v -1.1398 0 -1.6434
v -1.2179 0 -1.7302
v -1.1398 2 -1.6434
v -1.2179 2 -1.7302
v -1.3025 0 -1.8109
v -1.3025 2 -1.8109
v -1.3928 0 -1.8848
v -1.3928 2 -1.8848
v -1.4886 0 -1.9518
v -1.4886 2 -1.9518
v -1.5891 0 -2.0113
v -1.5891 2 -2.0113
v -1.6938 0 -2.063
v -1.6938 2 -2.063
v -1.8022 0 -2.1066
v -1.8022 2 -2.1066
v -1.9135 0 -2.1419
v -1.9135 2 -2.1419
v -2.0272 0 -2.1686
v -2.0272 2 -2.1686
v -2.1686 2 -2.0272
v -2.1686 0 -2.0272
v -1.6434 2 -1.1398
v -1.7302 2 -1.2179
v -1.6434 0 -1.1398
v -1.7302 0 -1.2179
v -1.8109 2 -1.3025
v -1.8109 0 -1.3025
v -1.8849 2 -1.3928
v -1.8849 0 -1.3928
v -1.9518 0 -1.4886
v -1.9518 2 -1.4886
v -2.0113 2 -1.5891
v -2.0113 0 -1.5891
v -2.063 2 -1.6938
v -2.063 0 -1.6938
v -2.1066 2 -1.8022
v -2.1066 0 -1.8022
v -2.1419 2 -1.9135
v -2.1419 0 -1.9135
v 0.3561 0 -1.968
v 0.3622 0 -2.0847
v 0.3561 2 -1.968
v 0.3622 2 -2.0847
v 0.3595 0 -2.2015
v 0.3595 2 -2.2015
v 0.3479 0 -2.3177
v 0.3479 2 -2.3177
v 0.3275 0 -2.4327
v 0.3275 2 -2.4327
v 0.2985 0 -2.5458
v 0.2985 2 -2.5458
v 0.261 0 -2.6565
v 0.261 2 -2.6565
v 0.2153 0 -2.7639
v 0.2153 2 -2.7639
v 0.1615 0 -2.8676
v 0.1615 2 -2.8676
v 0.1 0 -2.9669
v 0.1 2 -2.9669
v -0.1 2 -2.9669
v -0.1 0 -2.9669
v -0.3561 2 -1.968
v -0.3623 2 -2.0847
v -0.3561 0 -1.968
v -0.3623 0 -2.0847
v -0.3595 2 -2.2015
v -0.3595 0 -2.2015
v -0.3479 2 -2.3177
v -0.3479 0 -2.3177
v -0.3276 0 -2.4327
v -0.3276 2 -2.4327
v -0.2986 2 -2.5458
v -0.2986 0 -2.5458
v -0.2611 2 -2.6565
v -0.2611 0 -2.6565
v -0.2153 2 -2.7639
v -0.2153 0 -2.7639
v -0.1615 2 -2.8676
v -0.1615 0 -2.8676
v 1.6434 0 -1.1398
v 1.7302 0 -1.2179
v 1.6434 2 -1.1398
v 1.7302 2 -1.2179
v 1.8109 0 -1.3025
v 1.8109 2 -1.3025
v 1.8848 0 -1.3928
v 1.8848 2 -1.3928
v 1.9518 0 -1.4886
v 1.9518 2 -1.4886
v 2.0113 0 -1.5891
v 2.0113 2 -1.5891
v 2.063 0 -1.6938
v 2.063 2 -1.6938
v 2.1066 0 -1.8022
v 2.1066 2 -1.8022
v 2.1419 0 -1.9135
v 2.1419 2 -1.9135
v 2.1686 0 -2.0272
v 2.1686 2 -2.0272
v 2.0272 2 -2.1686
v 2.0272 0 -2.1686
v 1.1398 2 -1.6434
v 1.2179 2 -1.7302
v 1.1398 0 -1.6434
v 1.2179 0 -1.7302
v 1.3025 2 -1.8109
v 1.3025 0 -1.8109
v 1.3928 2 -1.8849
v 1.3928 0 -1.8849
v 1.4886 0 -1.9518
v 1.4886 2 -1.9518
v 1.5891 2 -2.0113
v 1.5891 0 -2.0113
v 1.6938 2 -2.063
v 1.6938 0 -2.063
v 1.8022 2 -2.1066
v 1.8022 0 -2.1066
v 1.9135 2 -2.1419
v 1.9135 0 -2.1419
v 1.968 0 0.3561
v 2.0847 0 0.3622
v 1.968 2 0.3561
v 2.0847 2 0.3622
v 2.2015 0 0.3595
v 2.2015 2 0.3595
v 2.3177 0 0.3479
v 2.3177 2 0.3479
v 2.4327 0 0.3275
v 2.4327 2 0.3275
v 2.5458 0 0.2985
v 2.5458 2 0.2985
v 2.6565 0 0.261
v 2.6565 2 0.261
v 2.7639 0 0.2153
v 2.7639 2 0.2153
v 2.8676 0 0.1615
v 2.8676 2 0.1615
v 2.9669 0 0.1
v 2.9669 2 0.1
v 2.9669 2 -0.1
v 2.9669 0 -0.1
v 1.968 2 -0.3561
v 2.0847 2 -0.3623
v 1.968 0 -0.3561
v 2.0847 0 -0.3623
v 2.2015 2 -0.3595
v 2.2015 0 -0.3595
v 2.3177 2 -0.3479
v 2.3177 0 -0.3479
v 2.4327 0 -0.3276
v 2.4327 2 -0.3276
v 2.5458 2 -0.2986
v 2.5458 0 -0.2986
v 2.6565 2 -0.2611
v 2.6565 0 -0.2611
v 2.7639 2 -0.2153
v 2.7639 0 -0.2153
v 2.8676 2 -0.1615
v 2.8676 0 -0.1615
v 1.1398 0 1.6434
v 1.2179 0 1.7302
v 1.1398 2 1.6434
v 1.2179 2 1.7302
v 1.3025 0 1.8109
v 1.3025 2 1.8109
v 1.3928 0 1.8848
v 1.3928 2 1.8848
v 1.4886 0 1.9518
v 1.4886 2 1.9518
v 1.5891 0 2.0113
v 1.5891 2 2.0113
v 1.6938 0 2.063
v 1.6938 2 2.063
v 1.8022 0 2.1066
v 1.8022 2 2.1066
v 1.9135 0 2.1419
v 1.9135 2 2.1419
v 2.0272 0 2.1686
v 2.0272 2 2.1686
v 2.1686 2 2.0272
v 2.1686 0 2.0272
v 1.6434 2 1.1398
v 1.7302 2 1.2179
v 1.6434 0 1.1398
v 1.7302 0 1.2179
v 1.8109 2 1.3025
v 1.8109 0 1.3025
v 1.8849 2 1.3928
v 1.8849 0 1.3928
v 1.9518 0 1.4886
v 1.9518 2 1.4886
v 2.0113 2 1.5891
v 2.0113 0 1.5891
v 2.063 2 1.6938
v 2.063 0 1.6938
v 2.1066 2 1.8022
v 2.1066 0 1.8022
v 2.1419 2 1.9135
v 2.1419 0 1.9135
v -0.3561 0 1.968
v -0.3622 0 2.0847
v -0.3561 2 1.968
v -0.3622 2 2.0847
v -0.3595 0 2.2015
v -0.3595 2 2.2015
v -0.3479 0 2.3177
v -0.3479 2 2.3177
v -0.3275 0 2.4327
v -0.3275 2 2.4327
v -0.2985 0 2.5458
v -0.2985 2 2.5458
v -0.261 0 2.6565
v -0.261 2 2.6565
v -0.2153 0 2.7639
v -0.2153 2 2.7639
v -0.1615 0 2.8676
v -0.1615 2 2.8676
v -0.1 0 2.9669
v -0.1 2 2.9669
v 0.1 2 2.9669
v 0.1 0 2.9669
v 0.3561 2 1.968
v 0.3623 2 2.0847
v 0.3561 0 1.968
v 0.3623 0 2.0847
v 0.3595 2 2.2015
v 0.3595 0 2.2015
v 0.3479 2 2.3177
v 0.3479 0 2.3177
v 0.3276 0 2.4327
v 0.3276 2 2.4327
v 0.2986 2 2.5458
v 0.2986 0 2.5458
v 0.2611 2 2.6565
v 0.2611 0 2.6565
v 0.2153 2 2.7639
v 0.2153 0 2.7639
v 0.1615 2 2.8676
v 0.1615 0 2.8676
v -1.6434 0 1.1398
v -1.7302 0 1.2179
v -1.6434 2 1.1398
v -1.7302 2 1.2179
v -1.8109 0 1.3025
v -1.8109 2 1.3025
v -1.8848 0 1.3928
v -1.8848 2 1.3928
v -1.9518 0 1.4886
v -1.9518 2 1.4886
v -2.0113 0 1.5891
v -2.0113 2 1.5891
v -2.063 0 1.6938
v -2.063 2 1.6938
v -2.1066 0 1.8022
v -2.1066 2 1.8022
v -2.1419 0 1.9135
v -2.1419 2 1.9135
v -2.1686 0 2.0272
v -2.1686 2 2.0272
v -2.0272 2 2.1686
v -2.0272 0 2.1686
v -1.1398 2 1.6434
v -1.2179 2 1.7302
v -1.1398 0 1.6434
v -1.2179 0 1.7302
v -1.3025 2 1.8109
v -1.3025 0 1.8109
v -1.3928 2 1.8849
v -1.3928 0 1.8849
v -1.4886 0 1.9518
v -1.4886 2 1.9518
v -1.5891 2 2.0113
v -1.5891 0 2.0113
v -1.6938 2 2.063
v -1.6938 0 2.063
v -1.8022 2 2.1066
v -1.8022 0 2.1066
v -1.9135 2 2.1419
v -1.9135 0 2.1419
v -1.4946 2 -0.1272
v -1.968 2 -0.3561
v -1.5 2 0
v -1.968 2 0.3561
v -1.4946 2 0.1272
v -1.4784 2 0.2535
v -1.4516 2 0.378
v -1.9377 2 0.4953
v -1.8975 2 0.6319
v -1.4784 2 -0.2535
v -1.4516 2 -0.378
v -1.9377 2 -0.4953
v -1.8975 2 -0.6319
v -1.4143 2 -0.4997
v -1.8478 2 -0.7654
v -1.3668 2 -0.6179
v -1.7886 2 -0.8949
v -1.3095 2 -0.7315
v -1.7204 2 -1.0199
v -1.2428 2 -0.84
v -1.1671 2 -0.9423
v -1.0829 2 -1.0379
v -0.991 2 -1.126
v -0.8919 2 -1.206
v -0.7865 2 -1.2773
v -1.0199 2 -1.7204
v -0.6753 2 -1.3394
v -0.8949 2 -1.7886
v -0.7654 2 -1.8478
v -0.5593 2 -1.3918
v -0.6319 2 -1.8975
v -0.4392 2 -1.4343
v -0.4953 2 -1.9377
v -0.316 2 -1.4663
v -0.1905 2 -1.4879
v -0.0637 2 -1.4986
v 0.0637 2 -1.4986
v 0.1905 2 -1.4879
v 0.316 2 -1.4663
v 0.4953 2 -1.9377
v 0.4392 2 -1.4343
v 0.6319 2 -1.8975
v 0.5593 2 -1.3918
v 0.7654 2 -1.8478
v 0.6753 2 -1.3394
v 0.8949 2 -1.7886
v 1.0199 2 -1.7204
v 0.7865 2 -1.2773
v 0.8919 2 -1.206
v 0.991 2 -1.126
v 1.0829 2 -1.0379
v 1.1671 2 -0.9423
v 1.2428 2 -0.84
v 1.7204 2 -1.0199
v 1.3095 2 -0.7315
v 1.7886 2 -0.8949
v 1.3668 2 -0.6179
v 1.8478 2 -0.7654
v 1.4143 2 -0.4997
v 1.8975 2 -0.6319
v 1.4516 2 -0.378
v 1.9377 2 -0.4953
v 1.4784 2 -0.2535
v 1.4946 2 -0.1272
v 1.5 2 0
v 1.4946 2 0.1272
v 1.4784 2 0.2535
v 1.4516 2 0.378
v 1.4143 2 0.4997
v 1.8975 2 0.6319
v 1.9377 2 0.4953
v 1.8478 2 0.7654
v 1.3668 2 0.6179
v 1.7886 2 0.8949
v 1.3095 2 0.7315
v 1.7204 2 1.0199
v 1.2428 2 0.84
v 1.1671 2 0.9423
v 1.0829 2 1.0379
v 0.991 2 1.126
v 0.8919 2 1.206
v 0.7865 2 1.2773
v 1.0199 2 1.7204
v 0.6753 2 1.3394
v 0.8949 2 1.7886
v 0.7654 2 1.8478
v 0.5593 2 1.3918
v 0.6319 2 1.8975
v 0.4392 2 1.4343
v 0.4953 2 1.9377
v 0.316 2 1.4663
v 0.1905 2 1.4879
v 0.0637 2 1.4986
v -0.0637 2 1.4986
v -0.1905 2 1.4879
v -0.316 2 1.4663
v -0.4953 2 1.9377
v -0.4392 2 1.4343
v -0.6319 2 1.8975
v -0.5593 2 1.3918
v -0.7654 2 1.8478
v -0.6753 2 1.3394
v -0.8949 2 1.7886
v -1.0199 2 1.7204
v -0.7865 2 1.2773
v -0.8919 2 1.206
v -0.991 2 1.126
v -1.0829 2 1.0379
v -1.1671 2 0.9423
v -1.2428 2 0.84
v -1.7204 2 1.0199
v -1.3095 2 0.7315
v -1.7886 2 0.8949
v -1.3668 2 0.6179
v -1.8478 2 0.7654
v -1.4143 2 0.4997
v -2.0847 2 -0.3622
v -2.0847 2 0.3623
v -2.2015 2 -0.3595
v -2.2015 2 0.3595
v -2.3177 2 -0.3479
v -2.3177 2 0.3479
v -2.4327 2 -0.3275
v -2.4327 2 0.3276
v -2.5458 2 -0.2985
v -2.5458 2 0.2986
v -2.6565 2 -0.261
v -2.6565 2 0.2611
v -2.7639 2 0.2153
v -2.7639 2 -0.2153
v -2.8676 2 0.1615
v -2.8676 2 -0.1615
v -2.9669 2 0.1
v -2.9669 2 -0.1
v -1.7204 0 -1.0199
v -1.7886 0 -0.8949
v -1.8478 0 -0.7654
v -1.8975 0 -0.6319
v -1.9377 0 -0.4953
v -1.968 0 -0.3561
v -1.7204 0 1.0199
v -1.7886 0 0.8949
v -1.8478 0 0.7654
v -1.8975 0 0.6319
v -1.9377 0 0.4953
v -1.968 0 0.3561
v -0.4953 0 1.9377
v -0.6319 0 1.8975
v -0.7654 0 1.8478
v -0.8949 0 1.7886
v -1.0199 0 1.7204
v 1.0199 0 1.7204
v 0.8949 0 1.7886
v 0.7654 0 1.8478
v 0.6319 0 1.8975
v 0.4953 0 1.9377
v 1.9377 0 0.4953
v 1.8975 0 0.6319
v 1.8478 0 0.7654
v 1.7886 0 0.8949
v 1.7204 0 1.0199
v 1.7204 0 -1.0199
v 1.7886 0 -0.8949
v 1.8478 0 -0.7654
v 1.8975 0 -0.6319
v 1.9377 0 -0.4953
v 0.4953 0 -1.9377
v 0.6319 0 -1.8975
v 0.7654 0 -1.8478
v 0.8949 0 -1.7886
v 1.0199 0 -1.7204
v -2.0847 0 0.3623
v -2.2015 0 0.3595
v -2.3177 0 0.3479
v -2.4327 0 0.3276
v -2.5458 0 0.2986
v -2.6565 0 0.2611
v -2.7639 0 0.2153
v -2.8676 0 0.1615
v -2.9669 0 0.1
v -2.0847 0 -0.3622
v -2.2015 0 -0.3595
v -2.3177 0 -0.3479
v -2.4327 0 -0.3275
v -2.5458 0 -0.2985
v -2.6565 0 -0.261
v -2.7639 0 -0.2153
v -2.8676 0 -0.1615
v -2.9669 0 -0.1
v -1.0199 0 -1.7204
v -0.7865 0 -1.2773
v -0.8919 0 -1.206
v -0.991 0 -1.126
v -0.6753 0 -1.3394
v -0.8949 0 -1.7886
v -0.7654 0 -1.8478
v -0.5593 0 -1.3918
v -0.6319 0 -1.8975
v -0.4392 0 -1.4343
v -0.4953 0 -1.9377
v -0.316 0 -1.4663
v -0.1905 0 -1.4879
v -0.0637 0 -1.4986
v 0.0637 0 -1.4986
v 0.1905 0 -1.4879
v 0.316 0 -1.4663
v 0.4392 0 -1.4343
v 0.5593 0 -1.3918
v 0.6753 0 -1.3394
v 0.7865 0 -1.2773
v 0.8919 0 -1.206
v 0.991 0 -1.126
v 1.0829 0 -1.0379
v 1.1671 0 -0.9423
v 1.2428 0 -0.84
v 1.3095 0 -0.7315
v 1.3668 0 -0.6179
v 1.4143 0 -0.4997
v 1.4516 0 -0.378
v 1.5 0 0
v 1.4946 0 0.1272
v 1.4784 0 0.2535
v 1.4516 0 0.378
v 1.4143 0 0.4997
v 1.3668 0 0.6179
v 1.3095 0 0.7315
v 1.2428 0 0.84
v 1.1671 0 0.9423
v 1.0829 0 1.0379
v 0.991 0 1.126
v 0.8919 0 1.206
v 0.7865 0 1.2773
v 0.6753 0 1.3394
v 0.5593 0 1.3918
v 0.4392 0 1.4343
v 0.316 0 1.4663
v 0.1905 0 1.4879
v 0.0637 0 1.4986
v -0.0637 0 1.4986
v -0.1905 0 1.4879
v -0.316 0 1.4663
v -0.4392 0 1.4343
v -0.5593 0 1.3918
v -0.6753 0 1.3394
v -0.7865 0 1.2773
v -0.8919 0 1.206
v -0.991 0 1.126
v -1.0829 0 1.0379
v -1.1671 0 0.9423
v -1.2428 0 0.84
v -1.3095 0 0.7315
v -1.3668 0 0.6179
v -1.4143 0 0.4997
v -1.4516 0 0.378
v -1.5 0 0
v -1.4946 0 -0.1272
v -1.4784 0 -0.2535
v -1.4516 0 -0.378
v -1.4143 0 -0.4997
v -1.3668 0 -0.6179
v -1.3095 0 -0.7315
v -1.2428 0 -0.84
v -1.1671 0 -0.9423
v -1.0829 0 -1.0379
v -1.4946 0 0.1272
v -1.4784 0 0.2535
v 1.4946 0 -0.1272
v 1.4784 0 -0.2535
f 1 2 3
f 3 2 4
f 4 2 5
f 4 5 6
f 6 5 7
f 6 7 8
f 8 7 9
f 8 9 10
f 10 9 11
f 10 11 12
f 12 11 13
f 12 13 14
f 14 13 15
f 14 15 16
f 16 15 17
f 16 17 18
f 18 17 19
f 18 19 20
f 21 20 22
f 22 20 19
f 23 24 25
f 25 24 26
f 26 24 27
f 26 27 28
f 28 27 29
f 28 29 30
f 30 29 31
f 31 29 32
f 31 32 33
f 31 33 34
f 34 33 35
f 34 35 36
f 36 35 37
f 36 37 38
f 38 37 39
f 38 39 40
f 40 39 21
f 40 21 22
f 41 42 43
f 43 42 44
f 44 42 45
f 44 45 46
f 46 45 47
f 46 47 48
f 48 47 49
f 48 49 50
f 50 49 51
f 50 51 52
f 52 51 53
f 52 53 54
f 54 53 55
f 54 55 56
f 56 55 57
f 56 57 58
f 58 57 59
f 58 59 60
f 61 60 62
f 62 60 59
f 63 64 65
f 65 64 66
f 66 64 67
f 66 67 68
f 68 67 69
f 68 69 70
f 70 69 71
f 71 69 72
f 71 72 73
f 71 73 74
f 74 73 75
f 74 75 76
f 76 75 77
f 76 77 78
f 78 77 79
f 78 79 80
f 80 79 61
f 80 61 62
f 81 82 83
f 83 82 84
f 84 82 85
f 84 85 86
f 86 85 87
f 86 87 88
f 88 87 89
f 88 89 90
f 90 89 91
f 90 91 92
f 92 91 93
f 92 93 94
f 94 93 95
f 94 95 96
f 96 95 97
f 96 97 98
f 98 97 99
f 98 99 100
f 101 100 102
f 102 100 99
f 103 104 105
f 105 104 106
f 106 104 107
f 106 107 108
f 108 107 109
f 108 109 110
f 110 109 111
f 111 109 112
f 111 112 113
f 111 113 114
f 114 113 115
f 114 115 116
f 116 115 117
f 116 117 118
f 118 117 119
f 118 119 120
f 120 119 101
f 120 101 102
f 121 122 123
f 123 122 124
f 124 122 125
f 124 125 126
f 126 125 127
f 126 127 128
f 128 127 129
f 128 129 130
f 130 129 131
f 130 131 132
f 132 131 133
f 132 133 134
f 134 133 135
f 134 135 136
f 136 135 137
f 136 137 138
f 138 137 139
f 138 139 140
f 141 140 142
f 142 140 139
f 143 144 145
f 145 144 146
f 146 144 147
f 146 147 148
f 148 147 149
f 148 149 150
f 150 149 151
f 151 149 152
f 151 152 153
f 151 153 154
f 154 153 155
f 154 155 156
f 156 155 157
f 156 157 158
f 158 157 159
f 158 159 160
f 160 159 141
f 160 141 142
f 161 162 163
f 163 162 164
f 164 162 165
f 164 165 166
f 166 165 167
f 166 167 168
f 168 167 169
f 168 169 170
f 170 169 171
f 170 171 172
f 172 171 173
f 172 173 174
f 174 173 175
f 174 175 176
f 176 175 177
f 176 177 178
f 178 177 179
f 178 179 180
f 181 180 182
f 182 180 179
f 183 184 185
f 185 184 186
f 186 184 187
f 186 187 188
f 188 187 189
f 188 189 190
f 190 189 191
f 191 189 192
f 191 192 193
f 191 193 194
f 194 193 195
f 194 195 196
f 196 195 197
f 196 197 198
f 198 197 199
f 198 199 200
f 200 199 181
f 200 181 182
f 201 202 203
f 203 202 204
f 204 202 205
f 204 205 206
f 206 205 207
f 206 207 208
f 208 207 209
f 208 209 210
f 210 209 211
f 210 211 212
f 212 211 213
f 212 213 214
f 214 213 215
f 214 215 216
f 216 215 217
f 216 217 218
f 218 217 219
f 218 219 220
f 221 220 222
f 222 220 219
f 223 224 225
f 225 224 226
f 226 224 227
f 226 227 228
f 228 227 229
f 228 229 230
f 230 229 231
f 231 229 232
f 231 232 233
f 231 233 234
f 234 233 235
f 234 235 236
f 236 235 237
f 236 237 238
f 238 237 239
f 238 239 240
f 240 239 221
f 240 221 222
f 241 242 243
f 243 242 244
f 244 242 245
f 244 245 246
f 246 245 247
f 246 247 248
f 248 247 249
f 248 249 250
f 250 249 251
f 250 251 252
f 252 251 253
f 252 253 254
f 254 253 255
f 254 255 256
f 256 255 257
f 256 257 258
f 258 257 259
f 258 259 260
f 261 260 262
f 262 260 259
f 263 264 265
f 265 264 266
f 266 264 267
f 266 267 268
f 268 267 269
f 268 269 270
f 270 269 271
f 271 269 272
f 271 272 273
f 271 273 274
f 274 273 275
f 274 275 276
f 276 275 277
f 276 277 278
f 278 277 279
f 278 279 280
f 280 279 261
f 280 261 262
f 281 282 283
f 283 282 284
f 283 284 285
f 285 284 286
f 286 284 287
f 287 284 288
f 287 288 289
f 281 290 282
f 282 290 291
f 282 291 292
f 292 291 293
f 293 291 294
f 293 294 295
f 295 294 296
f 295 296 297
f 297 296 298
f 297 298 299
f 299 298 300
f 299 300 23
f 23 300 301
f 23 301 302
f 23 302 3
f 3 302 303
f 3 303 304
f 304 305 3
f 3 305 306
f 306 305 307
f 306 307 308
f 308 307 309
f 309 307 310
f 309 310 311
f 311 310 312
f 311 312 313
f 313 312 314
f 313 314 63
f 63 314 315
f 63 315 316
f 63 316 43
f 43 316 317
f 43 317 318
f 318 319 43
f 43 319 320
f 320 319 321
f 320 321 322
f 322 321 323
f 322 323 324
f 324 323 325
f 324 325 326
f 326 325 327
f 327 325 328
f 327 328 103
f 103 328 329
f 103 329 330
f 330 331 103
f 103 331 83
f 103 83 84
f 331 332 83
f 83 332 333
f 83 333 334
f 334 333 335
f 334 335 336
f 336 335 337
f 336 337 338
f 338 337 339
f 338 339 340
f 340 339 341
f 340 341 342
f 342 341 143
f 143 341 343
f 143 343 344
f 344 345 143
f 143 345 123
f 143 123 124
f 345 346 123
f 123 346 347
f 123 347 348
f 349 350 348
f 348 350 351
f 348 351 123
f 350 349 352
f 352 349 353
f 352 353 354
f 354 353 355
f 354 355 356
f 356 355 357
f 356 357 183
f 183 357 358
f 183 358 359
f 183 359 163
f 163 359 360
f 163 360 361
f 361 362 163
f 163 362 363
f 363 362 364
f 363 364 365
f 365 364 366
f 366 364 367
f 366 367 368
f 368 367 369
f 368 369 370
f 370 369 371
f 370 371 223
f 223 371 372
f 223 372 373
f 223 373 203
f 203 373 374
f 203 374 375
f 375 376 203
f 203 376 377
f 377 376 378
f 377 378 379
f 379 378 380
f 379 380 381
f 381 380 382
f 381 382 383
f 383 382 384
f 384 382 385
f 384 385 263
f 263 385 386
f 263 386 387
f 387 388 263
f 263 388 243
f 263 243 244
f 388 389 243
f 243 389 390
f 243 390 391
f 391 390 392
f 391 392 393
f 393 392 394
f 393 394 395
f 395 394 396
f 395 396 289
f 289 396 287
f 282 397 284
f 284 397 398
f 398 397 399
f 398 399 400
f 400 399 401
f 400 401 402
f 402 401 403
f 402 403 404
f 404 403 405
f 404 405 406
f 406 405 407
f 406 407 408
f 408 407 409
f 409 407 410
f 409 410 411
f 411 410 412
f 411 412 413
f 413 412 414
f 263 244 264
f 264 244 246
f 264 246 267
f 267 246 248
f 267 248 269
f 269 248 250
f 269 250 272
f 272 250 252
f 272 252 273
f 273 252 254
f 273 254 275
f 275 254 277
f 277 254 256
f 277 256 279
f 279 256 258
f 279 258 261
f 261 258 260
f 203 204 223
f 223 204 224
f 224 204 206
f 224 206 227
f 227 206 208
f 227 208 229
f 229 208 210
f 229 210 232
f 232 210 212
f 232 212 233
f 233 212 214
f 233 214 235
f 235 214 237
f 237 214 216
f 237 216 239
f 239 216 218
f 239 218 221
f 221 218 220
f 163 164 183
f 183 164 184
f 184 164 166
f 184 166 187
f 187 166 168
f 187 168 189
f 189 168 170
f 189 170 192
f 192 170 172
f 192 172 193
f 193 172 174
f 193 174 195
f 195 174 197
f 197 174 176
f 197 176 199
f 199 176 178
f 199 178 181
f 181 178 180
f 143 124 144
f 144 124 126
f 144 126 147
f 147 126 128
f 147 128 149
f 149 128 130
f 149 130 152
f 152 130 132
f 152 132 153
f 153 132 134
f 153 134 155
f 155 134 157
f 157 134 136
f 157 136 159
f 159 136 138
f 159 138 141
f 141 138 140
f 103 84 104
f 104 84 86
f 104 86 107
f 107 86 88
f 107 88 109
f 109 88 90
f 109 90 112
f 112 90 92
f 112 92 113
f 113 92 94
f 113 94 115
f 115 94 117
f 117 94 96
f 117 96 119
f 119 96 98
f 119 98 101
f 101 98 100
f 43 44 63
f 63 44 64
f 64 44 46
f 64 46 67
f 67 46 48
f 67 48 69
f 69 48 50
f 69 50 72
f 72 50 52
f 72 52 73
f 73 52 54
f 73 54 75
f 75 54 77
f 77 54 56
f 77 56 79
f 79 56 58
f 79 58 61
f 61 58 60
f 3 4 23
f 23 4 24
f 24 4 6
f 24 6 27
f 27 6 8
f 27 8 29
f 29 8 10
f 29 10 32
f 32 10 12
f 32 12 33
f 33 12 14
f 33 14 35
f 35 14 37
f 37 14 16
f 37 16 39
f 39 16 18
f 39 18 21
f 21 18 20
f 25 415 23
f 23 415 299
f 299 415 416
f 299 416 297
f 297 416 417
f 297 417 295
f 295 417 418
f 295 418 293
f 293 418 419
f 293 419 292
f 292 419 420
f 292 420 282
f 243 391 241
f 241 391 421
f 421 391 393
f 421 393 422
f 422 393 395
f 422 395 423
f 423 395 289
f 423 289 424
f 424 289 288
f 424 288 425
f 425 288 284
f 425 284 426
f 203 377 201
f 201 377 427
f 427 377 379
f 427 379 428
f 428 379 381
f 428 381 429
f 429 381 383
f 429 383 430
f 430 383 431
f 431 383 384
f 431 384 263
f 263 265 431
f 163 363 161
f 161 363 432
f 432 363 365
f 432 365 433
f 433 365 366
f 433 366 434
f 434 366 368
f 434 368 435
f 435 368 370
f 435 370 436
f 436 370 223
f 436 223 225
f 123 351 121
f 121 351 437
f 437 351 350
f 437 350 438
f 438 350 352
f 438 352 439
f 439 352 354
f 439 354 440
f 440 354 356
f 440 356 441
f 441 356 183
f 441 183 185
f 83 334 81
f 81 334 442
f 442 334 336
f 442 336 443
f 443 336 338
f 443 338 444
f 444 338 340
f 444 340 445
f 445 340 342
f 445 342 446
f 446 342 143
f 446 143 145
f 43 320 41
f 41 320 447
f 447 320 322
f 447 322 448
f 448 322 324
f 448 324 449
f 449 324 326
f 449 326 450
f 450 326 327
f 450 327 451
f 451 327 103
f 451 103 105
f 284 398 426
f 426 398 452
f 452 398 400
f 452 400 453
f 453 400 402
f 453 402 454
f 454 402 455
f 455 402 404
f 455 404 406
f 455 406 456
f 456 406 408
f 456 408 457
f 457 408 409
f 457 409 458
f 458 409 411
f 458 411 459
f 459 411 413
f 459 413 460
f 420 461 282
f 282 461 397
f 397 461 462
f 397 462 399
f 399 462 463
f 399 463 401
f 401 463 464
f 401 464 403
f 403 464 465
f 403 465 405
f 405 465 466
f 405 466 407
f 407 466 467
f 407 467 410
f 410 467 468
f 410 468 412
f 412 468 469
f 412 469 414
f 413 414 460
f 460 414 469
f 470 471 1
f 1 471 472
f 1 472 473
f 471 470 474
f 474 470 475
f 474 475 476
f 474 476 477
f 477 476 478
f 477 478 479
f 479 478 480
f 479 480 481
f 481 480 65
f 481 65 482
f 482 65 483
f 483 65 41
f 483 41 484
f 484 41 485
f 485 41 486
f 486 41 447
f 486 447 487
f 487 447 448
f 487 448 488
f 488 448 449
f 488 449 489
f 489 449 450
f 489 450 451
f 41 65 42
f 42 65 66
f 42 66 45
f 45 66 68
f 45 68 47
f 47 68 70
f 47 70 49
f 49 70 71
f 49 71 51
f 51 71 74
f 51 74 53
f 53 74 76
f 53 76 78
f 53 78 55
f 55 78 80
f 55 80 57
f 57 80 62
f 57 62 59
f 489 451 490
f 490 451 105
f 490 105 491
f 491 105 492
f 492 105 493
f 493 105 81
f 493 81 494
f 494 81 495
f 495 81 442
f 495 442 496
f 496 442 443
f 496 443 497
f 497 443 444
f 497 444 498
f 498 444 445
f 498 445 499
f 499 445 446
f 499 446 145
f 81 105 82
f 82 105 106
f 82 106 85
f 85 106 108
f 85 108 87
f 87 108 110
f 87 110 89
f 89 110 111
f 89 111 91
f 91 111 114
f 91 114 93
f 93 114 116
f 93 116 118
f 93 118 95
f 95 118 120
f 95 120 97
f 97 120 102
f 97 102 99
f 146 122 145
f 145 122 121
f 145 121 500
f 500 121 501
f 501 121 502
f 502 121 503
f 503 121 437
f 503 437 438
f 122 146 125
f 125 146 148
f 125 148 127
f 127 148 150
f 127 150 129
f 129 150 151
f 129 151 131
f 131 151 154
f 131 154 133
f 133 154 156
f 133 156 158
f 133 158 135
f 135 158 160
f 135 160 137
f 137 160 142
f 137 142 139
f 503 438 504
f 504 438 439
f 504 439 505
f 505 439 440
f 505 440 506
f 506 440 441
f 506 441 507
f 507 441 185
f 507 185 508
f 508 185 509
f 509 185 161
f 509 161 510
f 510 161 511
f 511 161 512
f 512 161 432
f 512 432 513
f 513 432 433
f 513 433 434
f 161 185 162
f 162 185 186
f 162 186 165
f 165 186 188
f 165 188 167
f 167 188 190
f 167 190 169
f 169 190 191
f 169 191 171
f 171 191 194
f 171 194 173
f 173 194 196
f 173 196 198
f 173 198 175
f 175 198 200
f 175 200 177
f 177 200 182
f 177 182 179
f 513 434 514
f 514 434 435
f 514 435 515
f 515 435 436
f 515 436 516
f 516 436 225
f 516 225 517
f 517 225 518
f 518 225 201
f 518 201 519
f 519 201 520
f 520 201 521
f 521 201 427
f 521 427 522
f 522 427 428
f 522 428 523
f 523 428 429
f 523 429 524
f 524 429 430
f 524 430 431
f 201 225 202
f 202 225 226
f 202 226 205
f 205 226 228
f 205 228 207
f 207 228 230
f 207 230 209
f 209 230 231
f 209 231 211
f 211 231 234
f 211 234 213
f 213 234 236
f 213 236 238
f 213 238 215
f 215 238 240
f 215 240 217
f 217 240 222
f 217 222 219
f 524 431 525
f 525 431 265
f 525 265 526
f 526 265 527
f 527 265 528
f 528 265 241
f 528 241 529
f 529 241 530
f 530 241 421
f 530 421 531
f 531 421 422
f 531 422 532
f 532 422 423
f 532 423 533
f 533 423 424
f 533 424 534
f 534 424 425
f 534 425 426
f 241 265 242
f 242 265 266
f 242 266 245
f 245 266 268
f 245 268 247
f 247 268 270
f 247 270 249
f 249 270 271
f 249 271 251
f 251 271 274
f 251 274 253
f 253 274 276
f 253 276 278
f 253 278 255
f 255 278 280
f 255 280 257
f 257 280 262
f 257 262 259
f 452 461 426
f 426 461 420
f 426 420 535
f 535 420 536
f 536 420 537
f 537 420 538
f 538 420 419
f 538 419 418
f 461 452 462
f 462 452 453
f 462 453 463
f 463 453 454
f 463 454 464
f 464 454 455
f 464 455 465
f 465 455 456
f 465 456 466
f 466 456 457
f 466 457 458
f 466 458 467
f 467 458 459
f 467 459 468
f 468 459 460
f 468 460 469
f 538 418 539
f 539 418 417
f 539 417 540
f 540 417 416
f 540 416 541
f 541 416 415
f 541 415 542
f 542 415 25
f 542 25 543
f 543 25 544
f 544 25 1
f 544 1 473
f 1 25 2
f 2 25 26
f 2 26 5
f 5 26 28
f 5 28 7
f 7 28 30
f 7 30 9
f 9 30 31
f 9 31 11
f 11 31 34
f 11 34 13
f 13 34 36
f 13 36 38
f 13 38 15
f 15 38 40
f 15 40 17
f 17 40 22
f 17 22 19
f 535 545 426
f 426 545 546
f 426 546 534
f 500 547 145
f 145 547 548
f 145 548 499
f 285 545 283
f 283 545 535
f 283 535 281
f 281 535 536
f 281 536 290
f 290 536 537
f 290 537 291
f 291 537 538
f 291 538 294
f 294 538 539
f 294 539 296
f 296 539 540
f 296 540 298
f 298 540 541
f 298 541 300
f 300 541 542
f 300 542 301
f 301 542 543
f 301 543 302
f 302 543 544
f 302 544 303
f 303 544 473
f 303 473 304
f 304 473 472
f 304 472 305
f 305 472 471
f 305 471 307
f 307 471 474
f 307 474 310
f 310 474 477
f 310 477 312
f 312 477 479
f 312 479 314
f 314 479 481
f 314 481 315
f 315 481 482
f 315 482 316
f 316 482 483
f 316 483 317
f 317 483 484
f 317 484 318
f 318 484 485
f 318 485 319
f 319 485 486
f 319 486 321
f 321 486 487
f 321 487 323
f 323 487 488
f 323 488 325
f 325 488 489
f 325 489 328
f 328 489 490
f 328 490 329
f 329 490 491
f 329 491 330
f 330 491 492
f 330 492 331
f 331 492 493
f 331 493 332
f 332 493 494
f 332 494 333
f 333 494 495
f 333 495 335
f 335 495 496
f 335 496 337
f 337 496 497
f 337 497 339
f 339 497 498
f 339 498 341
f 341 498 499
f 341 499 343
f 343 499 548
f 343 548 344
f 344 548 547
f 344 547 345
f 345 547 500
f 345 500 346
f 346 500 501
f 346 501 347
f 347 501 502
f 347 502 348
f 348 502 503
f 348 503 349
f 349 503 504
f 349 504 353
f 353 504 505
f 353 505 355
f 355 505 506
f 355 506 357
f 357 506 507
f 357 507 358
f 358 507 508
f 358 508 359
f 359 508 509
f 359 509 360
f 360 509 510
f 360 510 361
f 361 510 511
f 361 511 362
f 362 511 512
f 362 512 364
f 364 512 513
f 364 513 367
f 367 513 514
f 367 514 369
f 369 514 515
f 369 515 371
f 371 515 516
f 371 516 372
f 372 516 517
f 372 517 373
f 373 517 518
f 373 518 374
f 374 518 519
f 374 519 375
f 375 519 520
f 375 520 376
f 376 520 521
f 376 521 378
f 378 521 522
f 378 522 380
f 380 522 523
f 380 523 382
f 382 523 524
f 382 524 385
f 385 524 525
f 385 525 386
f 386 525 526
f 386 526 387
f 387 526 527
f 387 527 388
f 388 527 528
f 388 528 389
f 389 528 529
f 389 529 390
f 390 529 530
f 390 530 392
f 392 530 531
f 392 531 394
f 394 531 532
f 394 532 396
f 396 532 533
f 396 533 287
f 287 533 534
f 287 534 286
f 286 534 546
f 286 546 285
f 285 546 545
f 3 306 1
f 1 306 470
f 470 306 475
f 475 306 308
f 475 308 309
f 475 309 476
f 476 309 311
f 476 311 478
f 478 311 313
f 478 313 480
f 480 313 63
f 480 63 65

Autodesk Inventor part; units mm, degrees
ref_plane "YZ Plane" through (0, 0, 0) normal (1, 0, 0) x (0, 1, 0)
ref_plane "XZ Plane" through (0, 0, 0) normal (0, 1, 0) x (-1, 0, 0)
ref_plane "XY Plane" through (0, 0, 0) normal (0, 0, 1) x (1, 0, 0)
sketch "Sketch1" plane through (0, 0, 0) normal (0, 1, 0) x (-1, 0, 0)
  circle A0 centre (0, 0) radius 1.5
  circle A1 centre (0, 0) radius 2
  dimension "d0" = 3
  dimension "d1" = 4
extrude "Extrusion1" add sketch "Sketch1" along normal blind 2
sketch "Sketch2" plane through (0, 2, 0) normal (0, 1, 0) x (1, 0, 0)
  line L0 (-1.9117, -0.1) -> (-2.7237, -0.1) construction
  line L1 (-2.7237, -0.1) -> (-2.7237, 0.1) construction
  line L2 (-2.7237, 0.1) -> (-1.9117, 0.1) construction
  line L3 (-1.9117, 0.1) -> (-1.9117, -0.1) construction
  line L4 (-1.9117, 0) -> (-1.9117, 0.35) construction
  line L5 (-1.9117, 0) -> (-1.5617, 0) construction
  line L6 (-1.9117, 0.35) -> (-1.9117, -0.35) construction
  line L7 (-1.9117, 0.1) -> (-2.9669, 0.1) construction
  line L8 (-2.9669, 0.1) -> (-2.9669, -0.1) construction
  line L9 (-2.9669, -0.1) -> (-1.9117, -0.1) construction
  line L10 (-1.9117, -0.1) -> (-1.9117, 0.1) construction
  arc A0 (-2.9669, -0.1) -> (-1.9117, -0.35) centre (-2.1069, 1.1781) ccw construction
  arc A1 (-2.9669, -0.1) -> (-1.9117, -0.35) centre (-2.1069, 1.1781) ccw
  arc A2 (-1.9117, 0.35) -> (-2.9669, 0.1) centre (-2.1068, -1.1786) ccw
  line L11 (-2.9669, -0.1) -> (-2.9669, 0.1)
  line L12 (-1.9117, -0.35) -> (-1.9117, 0.35)
  point P0 (0, 0)
  dimension "d4" = 0.2
  dimension "d5" = 0.35
  dimension "d6" = 90
  dimension "d7" = 0.7
  dimension "d8" = 1.541
extrude "Extrusion2" add sketch "Sketch2" against normal blind 2
pattern_circular "Circular Pattern1" count 8 over 360 about axis through (0, 0, 0) along (0, 1, 0) of "Extrusion2"
properties part number "mtv_gear8_1-13"
